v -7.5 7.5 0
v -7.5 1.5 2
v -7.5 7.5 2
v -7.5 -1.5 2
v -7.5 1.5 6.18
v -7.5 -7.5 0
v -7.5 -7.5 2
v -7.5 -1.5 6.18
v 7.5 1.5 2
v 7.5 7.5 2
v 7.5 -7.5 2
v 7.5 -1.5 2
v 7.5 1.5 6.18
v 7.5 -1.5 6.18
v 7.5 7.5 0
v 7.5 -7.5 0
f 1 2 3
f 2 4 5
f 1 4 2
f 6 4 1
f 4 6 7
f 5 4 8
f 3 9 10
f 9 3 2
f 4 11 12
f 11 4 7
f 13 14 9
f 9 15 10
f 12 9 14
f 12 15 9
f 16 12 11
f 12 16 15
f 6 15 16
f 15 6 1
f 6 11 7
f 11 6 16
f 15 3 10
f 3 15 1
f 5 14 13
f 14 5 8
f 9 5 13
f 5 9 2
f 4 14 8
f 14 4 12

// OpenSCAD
// file: cubeX.scad
//
// Simple and fast corned cube!
// Anaximandro de Godinho.
//

module cubeX( size, radius=1, rounded=true, center=false )
{
	l = len( size );
	if( l == undef )
		_cubeX( size, size, size, radius, rounded, center );
	else
		_cubeX( size[0], size[1], size[2], radius, rounded, center );
}

module _cubeX( x, y, z, r, rounded, center )
{
	if( rounded )
		if( center )
			translate( [-x/2, -y/2, -z/2] )
			__cubeX( x, y, z, r );
		else
			__cubeX( x, y, z, r );
	else
		cube( [x, y, z], center );
}

module __cubeX(	x, y, z, r )
{
	//TODO: discount r.
	rC = r;
	hull()
	{
		translate( [rC, rC, rC] )
			sphere( r );
		translate( [rC, y-rC, rC] )
			sphere( r );
		translate( [rC, rC, z-rC] )
			sphere( r );
		translate( [rC, y-rC, z-rC] )
			sphere( r );

		translate( [x-rC, rC, rC] )
			sphere( r );
		translate( [x-rC, y-rC, rC] )
			sphere( r );
		translate( [x-rC, rC, z-rC] )
			sphere( r );
		translate( [x-rC, y-rC, z-rC] )
			sphere( r );
	}
}
// main file
include <cubeX.scad>

tile_dim = 15;
tile_depth = 2;

ridge_depth = 4.18;
ridge_width = 3;

// Tile face
translate([-(tile_dim / 2), -(tile_dim / 2)])
    cube(size = [tile_dim, , tile_dim, tile_depth]);
    
translate([-(tile_dim / 2), -(ridge_width /2), tile_depth])
    cube(size = [tile_dim, ridge_width, ridge_depth]);
    
